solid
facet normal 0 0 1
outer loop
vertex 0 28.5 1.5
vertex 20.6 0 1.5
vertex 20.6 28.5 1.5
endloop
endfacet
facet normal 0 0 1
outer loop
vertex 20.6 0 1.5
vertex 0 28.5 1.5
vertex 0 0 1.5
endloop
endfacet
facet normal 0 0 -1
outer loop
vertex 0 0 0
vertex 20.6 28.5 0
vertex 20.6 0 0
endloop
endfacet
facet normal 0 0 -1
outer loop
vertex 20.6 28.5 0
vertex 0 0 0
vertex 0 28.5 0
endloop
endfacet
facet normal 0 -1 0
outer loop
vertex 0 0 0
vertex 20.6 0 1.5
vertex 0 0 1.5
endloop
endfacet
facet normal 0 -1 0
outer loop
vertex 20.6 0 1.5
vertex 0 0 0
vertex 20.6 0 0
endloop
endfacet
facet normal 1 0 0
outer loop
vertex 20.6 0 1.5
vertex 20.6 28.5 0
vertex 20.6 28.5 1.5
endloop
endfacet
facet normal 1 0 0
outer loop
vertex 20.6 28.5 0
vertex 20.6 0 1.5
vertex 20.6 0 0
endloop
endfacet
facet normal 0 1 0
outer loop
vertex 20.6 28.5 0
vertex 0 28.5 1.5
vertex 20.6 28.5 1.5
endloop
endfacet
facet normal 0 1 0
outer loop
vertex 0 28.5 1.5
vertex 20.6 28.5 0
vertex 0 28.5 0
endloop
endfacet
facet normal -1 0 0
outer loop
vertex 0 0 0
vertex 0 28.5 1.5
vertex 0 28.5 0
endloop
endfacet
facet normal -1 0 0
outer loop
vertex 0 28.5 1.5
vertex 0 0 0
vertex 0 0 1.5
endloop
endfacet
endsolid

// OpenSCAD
// Holder for FT 243 quartz crystal - top cover
//
// Dimensions are in mm.

$fn=64;

// Width
width = 20.6;

// Depth
depth = 28.5;

// Height
height = 1.5;

// Outside
cube([width, depth, height], false);

// Text on top of cover. Comment out if not desired.
//translate([width/2, depth*2/3, height]) linear_extrude(1) {
//    text(text="7.055", size=3, halign="center", valign="center");
//}
